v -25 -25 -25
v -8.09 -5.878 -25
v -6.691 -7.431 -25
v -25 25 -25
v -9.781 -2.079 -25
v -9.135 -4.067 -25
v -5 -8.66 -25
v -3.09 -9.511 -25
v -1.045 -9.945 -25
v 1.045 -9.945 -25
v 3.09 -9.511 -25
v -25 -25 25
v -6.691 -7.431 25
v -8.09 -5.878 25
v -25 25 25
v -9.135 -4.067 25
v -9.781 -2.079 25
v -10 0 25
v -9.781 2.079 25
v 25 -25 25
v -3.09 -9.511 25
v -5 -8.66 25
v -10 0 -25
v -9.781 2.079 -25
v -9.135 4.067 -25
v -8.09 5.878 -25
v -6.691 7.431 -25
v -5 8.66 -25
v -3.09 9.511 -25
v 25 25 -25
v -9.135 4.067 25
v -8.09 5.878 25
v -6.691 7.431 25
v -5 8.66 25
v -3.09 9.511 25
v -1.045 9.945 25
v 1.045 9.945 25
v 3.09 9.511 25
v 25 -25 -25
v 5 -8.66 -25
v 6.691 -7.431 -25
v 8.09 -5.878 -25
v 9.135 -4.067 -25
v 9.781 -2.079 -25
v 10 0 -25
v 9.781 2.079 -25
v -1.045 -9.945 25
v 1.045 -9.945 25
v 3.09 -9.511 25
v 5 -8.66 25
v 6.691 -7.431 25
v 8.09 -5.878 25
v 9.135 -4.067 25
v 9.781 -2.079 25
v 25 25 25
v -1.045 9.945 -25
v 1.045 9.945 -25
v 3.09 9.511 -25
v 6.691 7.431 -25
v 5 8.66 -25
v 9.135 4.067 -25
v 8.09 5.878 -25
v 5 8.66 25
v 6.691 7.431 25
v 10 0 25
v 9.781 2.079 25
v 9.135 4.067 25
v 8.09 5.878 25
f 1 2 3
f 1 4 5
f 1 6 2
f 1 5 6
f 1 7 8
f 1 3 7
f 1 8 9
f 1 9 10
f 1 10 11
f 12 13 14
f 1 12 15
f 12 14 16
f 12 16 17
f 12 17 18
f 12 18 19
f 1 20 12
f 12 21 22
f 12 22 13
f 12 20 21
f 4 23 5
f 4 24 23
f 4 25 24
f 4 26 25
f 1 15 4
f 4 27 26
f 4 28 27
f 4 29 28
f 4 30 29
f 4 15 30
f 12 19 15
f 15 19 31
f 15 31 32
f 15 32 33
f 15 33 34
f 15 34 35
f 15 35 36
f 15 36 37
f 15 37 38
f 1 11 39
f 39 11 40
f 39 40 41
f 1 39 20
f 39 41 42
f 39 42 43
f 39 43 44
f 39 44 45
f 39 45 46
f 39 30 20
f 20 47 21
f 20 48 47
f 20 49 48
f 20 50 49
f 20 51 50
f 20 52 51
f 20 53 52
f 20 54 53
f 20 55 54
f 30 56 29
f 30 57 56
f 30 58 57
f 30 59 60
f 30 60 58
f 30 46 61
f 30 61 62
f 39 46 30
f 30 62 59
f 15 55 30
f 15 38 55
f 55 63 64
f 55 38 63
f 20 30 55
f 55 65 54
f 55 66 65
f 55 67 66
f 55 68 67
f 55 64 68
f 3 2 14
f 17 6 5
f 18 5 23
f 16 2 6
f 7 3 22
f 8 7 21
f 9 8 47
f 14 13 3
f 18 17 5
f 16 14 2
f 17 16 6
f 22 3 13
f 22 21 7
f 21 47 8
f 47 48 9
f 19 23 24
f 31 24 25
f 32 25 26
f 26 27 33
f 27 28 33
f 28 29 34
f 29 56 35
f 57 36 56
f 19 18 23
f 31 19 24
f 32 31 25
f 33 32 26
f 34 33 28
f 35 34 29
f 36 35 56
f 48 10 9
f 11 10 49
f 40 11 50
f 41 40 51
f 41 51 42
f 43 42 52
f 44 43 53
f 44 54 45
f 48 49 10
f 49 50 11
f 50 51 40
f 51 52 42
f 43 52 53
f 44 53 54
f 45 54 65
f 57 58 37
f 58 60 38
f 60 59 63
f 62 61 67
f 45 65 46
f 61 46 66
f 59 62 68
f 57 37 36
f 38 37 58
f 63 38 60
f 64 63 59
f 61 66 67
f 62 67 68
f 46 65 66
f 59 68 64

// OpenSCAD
difference() {
    cube([50, 50, 50], center = true);
    cylinder(h = 52, d = 20, center = true);
}
